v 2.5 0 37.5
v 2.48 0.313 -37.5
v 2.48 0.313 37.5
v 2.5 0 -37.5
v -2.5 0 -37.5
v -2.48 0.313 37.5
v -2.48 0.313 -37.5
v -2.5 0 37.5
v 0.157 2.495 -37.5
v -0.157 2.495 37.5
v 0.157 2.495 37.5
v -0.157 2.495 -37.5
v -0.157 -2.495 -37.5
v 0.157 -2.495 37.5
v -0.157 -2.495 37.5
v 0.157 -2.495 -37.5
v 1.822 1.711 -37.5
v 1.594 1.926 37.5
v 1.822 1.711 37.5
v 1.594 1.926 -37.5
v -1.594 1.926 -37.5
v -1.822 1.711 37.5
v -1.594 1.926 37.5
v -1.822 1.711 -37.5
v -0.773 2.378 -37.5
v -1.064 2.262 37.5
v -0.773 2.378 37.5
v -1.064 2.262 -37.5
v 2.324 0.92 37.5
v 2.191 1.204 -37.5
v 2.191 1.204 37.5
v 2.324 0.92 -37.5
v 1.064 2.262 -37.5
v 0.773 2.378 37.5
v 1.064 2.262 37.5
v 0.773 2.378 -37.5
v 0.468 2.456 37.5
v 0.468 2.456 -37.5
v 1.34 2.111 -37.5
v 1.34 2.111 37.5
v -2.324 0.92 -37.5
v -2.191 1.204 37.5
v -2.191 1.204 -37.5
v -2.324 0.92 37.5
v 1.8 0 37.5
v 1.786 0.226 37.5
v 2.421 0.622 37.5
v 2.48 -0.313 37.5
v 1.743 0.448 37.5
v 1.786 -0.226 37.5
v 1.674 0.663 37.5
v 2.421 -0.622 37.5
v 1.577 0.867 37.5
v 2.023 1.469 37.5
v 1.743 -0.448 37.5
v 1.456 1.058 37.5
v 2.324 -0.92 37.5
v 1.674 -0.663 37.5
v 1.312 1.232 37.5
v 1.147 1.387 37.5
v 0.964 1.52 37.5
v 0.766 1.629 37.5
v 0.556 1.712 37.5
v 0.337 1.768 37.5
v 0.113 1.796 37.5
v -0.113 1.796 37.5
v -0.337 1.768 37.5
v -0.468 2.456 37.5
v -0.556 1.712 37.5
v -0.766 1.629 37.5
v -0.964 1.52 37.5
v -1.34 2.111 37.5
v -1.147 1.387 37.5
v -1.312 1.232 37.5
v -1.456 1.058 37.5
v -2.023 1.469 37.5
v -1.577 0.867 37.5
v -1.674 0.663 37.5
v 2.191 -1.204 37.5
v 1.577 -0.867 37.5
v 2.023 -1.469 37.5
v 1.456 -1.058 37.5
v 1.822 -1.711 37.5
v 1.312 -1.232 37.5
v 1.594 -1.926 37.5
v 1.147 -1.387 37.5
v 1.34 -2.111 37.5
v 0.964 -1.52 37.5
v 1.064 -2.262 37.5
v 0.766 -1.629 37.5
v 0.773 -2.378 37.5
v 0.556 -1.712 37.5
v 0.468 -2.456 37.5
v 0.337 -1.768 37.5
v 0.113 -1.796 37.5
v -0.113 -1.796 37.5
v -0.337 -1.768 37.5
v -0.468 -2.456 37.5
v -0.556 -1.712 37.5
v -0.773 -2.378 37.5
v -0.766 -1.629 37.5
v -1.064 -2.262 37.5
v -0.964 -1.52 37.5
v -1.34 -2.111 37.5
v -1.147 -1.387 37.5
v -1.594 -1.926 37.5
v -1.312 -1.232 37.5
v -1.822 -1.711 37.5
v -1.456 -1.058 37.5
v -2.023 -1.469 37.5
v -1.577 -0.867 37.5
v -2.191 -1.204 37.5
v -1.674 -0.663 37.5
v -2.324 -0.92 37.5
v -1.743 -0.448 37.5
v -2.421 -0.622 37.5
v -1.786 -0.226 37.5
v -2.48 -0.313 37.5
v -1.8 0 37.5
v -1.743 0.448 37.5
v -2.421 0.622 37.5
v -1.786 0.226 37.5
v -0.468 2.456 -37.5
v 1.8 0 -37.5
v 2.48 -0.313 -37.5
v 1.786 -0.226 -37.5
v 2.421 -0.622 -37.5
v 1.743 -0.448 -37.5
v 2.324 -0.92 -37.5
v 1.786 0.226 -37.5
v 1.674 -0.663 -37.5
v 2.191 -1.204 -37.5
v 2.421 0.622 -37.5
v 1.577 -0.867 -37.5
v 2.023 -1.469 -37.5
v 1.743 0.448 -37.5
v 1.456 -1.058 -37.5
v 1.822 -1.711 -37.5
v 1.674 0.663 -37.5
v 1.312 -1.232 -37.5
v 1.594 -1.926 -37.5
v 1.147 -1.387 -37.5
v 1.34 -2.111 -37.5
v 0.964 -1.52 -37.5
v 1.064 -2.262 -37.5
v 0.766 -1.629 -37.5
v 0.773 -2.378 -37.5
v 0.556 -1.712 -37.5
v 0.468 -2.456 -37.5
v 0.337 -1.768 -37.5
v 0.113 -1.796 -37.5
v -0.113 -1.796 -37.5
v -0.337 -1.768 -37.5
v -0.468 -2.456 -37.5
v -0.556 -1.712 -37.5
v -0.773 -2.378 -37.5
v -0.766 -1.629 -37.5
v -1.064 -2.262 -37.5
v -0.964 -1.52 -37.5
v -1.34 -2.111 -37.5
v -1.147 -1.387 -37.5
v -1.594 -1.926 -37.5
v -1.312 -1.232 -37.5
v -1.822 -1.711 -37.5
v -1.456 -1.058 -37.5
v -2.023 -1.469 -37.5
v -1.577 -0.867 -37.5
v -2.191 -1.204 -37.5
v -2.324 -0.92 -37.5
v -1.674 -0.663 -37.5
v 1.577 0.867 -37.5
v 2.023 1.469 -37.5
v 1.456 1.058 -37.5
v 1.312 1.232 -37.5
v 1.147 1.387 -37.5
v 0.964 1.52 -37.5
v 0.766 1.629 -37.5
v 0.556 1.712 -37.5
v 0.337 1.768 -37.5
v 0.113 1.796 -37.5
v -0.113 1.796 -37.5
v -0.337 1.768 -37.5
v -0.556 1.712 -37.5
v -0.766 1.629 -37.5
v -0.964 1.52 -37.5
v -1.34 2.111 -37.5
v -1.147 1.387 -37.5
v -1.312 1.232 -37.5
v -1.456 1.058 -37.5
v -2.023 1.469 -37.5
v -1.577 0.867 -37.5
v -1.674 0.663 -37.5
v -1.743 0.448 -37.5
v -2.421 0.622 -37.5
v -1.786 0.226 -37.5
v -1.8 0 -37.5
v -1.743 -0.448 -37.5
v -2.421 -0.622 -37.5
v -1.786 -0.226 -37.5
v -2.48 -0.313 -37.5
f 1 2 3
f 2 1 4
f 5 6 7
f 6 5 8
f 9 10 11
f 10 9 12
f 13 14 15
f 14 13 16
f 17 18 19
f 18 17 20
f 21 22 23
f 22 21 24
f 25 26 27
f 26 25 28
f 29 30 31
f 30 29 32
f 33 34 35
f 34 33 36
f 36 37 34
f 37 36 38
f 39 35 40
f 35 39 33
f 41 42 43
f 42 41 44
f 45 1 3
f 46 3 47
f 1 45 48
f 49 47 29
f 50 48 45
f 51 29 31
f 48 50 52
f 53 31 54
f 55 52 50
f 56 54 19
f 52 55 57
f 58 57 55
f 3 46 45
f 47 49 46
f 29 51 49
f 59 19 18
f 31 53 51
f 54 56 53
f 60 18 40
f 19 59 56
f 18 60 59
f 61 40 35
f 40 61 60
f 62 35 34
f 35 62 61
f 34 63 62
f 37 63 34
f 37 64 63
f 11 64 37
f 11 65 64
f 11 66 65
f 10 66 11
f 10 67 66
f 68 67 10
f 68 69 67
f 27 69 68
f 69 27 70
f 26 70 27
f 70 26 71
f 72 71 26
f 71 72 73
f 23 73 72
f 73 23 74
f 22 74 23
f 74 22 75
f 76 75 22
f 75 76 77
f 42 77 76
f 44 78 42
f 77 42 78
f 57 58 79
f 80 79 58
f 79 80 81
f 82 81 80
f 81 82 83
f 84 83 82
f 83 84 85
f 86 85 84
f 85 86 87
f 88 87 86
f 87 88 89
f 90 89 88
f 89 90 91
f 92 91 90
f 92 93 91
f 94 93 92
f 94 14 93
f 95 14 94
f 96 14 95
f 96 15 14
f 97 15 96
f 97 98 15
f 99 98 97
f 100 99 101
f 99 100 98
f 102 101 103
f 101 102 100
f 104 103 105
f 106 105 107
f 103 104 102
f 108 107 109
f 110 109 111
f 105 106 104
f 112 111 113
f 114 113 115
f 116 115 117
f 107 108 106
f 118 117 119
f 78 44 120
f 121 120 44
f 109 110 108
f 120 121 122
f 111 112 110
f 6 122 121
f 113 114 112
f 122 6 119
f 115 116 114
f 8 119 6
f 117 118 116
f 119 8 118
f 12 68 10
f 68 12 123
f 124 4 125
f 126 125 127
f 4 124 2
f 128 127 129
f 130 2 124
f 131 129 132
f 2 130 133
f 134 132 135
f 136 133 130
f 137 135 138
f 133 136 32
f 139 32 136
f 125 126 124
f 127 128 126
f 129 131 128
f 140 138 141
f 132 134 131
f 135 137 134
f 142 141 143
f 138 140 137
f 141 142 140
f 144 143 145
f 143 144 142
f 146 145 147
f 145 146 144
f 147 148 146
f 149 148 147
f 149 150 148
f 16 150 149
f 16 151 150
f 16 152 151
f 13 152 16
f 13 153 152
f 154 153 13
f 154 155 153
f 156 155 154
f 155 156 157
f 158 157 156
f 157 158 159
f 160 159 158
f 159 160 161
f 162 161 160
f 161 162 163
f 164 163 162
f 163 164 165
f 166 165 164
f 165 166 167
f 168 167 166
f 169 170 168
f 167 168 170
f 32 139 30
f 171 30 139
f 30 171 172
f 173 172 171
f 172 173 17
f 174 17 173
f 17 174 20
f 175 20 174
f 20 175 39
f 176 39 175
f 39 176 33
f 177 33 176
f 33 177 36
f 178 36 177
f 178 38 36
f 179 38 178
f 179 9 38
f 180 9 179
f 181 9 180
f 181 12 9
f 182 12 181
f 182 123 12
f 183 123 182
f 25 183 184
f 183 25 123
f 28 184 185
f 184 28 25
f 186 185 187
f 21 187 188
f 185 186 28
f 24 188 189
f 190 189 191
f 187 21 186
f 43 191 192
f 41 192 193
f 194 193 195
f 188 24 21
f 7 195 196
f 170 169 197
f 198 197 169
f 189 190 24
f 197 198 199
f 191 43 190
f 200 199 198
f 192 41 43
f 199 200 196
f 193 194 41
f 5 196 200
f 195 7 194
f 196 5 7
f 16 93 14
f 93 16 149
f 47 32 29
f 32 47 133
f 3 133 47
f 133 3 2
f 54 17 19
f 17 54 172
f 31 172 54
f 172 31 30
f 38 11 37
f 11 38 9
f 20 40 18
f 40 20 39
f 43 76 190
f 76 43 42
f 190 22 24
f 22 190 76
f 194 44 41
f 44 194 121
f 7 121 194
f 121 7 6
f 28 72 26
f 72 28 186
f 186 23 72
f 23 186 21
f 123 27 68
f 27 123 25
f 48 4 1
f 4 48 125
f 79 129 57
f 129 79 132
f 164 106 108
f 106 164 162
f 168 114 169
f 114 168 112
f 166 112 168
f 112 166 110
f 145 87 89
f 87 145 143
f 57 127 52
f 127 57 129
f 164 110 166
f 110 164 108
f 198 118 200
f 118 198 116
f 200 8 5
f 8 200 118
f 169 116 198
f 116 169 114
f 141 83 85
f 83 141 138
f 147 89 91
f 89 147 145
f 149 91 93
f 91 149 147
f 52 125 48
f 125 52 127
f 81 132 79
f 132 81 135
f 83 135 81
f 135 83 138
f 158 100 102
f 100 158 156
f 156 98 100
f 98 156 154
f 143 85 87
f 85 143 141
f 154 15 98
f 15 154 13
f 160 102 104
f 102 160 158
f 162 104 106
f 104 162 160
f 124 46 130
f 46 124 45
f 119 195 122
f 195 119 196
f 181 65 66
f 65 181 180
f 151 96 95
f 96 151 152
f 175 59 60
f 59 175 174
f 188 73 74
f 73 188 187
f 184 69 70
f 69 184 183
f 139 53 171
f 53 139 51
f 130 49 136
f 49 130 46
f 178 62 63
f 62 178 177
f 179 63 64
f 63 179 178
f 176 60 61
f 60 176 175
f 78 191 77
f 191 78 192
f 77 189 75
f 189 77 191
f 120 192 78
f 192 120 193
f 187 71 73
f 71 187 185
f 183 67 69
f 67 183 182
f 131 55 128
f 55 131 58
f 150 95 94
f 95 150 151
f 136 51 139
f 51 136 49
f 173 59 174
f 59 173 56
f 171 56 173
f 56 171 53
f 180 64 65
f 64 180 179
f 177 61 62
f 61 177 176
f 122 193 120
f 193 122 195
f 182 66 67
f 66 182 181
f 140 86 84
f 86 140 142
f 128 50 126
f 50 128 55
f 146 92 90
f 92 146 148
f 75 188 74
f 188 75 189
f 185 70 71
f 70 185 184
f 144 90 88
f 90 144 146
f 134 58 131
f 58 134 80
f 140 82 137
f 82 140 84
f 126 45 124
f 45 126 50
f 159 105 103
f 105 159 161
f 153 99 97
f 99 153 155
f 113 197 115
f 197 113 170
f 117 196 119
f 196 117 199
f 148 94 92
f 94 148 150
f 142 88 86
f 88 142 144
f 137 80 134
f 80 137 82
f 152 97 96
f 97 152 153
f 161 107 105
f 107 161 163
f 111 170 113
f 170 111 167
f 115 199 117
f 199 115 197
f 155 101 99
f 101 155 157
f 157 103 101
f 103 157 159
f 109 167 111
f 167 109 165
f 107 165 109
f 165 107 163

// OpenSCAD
$fn = 50;


difference() {
	union() {
		translate(v = [0, 0, -37.5000000000]) {
			cylinder(h = 75, r = 2.5000000000);
		}
	}
	union() {
		translate(v = [0, 0, -100.0000000000]) {
			cylinder(h = 200, r = 1.8000000000);
		}
	}
}
